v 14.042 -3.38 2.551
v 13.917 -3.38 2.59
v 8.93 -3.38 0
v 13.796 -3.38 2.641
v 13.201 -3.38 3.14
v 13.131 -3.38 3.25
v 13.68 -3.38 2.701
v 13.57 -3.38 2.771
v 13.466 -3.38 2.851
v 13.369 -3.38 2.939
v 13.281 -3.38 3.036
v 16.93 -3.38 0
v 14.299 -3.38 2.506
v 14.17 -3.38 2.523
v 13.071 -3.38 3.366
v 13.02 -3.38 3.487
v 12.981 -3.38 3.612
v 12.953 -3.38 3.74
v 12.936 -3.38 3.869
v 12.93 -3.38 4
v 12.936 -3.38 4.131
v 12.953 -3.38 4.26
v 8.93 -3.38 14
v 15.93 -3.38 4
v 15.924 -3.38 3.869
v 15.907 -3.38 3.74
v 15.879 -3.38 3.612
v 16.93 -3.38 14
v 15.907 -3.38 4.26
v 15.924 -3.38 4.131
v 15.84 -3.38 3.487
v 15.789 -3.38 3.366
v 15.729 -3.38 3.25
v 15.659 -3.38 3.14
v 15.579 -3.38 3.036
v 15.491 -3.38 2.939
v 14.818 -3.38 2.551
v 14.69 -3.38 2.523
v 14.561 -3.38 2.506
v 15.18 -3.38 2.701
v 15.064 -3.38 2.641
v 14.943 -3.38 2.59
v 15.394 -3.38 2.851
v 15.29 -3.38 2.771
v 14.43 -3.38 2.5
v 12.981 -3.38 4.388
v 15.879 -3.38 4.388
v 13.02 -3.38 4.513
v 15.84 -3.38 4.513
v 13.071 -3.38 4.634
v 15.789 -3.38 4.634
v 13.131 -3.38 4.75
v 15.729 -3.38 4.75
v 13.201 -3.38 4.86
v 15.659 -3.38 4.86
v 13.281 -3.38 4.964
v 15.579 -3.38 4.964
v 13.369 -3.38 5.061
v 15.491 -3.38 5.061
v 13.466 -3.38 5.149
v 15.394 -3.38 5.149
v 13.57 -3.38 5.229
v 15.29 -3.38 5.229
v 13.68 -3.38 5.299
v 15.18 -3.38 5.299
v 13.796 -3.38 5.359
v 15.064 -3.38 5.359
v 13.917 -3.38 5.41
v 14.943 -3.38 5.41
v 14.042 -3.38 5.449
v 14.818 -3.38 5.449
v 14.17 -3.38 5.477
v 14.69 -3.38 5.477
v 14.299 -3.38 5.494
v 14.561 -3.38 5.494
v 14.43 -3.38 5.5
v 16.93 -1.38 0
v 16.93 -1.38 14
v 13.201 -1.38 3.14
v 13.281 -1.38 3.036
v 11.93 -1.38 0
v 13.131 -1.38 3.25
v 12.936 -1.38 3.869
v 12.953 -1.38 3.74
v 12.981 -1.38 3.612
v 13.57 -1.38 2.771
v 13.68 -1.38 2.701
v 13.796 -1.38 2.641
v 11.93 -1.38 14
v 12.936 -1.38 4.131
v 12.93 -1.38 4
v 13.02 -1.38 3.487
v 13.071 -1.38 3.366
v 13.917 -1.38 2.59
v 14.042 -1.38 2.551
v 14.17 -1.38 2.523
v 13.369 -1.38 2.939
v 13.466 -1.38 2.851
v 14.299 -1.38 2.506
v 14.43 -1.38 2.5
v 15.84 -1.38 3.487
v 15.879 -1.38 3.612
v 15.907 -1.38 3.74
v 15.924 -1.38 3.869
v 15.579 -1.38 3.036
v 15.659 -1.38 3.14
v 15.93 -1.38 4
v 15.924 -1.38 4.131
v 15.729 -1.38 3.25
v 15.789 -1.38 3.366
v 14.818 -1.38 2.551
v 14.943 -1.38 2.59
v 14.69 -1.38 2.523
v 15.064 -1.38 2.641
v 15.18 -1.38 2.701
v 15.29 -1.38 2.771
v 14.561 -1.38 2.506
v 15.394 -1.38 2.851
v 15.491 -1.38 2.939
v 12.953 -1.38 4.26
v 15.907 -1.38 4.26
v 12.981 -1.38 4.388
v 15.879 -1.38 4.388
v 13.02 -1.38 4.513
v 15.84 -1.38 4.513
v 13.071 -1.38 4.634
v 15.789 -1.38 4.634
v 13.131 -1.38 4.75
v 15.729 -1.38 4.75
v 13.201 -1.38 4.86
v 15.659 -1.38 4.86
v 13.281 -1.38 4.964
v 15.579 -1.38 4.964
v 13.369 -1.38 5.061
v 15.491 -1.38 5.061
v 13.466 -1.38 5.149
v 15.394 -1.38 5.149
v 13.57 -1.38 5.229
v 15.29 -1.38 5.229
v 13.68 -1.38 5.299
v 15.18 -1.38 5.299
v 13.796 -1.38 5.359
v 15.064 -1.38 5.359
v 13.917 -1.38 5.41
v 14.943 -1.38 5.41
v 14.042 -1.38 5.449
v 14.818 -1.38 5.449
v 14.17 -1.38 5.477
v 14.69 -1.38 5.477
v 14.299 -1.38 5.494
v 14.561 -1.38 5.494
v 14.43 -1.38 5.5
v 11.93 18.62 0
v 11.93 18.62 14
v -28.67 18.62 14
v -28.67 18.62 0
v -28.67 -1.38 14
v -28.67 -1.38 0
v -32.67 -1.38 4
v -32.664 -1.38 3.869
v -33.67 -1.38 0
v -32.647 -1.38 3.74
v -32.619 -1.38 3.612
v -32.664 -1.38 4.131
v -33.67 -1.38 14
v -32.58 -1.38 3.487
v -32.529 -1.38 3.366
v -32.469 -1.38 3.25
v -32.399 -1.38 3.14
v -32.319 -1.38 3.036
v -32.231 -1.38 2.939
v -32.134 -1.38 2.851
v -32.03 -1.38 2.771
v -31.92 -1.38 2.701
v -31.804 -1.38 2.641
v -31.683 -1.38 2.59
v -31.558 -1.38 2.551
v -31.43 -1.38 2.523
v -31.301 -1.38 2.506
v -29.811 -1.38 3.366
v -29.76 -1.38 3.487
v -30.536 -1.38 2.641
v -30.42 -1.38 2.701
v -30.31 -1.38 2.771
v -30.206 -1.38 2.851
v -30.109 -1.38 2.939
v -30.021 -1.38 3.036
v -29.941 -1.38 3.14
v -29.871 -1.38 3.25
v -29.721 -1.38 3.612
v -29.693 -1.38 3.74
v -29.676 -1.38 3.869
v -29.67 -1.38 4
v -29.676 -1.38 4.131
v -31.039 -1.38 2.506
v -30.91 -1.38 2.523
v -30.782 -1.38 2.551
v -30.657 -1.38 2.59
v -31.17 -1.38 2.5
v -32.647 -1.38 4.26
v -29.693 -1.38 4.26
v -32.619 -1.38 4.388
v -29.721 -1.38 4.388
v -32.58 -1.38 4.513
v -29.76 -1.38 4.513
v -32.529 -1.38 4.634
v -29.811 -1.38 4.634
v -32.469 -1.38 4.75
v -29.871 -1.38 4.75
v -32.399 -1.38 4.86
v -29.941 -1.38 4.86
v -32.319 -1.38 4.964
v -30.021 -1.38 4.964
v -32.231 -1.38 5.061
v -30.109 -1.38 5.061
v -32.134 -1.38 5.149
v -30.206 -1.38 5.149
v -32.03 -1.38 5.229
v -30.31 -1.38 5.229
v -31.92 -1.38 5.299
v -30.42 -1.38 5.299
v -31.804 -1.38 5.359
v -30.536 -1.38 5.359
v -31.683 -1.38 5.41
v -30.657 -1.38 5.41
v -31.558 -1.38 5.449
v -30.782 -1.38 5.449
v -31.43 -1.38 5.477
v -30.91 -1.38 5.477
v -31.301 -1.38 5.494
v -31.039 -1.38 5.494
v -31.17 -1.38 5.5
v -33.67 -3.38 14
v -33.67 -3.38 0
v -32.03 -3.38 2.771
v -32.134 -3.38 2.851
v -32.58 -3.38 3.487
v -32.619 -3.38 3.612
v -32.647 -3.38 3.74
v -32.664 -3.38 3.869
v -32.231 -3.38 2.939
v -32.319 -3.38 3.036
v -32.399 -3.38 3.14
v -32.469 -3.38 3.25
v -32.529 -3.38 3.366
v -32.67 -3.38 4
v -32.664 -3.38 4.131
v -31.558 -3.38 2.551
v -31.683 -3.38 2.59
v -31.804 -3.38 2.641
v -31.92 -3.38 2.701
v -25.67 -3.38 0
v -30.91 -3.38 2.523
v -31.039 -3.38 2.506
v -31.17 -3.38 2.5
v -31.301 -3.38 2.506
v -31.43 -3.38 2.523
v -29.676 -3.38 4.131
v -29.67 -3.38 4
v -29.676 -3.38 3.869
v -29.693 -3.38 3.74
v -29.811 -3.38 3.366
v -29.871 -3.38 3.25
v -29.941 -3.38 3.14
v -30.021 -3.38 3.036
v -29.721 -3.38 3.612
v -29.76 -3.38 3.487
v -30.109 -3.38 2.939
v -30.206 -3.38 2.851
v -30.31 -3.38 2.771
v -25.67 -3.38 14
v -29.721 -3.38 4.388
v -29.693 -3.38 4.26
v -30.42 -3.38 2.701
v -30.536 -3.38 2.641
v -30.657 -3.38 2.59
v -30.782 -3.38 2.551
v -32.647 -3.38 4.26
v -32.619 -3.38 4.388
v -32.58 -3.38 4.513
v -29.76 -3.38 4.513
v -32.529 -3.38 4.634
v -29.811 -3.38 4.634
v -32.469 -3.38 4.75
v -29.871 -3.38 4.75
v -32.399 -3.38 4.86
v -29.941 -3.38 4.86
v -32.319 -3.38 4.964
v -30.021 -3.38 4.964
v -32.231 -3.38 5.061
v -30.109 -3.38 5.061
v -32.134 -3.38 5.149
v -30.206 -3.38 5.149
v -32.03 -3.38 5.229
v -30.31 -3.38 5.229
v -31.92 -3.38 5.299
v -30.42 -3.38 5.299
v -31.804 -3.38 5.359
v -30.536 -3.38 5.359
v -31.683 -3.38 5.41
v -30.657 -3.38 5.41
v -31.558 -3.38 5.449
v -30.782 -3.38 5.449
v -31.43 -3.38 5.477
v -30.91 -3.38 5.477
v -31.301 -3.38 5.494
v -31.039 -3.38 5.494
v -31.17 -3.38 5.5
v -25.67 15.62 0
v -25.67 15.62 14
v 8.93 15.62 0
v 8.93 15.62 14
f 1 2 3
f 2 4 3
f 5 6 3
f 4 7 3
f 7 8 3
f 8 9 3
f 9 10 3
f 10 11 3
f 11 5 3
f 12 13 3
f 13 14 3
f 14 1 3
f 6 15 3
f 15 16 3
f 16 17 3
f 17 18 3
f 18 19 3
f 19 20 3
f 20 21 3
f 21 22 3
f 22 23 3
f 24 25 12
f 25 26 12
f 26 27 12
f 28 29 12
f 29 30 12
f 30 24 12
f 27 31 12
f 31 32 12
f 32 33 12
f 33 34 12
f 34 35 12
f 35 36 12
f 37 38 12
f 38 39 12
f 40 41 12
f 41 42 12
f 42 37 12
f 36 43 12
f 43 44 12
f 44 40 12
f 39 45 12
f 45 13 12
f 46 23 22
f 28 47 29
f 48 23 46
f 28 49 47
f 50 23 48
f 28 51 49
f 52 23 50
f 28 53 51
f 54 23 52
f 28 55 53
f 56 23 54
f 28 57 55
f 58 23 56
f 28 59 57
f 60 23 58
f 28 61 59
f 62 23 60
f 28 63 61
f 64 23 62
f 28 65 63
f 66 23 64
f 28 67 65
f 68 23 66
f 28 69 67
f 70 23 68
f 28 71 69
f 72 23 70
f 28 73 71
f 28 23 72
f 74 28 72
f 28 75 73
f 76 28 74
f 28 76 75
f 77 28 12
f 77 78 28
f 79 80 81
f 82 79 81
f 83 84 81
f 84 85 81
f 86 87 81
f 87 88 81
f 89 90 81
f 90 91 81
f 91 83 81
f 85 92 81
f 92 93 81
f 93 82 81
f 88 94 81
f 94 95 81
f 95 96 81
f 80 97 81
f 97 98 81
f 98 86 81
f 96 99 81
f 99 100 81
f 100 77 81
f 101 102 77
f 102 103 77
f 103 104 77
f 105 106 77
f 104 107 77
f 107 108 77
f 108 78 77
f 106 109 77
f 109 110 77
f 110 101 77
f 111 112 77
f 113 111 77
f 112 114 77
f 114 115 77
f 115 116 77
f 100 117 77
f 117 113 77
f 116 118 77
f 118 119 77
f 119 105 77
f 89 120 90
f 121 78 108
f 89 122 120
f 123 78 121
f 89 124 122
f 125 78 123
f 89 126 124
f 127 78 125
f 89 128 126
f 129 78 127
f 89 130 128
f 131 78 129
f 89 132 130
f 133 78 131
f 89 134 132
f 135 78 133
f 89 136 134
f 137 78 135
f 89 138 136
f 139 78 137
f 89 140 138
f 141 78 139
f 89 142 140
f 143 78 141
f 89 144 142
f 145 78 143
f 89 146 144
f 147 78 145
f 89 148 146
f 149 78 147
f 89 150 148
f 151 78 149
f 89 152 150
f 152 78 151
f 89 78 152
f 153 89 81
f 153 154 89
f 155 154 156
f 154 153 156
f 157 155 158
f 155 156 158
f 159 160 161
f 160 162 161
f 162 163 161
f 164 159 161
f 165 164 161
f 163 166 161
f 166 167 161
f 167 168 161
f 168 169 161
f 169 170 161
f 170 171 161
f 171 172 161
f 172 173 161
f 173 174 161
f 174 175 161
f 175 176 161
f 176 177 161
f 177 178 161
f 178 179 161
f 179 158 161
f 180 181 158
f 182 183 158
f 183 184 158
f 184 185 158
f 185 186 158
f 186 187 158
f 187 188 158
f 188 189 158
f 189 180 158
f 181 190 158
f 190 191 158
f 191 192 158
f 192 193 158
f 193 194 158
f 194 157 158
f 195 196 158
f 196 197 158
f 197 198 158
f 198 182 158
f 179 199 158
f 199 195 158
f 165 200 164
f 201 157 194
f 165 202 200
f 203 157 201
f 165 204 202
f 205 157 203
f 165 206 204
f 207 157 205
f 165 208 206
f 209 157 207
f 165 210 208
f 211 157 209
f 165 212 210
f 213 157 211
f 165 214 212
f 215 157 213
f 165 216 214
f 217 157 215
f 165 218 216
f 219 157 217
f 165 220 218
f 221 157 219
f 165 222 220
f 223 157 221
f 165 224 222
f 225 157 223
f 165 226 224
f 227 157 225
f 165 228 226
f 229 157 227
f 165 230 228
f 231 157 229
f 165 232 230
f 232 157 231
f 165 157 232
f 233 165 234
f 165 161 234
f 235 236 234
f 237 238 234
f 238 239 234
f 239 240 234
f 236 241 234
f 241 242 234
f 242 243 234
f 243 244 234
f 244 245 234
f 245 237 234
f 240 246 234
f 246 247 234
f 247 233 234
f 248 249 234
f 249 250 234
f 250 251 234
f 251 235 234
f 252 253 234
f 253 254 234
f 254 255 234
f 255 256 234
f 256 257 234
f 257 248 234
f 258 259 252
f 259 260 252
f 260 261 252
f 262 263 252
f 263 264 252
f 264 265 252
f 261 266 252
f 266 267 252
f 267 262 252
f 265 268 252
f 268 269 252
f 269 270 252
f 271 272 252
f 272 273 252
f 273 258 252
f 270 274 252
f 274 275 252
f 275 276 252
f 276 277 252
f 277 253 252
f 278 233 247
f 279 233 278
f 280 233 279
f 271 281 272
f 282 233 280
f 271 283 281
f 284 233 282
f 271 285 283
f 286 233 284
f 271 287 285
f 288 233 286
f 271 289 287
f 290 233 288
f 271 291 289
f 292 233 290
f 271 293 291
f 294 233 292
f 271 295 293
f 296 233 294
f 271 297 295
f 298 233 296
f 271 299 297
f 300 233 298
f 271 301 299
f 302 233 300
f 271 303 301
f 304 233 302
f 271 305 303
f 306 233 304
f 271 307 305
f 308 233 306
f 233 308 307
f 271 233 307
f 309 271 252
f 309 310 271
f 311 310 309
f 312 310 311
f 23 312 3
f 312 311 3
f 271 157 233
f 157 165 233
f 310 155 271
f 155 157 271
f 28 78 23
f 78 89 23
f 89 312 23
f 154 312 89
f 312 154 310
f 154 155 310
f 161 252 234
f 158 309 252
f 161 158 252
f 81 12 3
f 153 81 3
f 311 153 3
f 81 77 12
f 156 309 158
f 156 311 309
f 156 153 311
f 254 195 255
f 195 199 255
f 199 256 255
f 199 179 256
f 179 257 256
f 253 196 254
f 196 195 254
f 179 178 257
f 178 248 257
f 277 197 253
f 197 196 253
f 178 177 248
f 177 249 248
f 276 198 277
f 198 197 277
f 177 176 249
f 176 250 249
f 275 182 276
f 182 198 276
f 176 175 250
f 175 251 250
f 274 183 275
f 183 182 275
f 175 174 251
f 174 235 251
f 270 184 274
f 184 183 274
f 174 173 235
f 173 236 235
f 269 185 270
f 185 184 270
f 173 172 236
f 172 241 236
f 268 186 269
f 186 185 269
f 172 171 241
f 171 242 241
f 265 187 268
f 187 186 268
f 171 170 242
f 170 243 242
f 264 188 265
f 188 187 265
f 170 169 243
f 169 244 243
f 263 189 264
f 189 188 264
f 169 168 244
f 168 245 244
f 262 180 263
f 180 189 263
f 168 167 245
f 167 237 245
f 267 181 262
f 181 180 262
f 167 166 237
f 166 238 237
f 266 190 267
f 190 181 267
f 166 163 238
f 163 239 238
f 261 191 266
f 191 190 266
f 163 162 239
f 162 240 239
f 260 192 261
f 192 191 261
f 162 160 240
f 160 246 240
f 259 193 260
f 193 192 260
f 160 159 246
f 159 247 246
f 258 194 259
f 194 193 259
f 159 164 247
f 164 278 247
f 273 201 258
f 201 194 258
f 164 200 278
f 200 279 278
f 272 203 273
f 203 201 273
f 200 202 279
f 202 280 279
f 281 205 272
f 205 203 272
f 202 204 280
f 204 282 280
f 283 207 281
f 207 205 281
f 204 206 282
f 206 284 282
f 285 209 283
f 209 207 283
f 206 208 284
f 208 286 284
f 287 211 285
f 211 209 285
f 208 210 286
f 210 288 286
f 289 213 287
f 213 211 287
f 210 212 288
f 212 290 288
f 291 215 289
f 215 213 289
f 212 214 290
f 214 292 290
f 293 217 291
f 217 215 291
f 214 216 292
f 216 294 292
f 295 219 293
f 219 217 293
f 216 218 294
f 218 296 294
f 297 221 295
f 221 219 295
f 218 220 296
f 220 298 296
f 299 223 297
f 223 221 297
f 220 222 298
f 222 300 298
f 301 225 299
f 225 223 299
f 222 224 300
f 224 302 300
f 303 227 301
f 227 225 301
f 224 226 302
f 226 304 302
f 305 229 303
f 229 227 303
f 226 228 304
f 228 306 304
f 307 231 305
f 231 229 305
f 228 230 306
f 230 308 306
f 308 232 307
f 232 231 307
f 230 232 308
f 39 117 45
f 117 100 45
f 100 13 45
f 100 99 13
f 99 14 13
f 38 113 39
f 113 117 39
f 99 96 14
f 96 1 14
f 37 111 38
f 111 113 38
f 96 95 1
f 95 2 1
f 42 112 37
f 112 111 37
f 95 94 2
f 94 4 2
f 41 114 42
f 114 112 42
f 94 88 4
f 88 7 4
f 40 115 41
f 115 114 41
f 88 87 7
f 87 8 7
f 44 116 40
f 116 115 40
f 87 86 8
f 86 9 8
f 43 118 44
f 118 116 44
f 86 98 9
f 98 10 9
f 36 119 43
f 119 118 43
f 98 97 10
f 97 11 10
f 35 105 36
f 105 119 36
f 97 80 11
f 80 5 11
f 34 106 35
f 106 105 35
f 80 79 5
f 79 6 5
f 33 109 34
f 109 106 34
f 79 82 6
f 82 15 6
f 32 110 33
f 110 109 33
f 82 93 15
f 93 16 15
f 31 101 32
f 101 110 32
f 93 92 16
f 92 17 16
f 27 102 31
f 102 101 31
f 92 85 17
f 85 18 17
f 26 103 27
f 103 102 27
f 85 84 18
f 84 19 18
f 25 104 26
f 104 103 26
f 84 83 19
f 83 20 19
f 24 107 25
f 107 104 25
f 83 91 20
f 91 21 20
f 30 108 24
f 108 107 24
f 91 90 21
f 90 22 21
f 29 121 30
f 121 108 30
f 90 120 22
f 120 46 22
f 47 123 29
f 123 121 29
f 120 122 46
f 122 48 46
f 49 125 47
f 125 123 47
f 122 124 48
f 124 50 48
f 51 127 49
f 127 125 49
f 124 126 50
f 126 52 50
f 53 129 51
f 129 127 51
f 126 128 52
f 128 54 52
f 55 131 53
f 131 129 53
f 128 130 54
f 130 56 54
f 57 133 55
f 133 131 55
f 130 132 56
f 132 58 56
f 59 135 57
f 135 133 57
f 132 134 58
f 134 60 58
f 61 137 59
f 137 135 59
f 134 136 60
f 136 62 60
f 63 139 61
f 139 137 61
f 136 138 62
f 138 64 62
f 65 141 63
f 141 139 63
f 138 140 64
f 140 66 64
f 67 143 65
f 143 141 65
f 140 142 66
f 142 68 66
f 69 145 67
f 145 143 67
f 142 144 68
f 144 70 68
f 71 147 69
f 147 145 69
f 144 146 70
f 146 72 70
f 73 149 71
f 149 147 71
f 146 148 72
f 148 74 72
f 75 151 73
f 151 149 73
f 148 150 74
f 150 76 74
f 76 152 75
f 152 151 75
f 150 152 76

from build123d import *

# Parameters (mm, degrees)
BOSS_EXTRUDE1_DEPTH      = 14
F_3_0_3_DIAMETER_HOLE1_D = 3


with BuildPart() as part:
    # Sketch2 → Boss-Extrude1 (new body)
    with BuildSketch(Plane.XY):
        Polygon((11.93, -3.38), (16.93, -3.38), (16.93, -1.38), (11.93, -1.38), (11.93, 18.62), (-28.67, 18.62), (-28.67, -1.38), (-33.67, -1.38), (-33.67, -3.38), (-12.23, -3.38), (-25.67, -3.38), (-25.67, 15.62), (8.93, 15.62), (8.93, -3.38), align=None)
    extrude(amount=BOSS_EXTRUDE1_DEPTH)

    # Ø3.0 (3) Diameter Hole1 (through all)
    with Locations(Plane(origin=(0, -1.38, 0), x_dir=(1, 0, 0), z_dir=(0, 1, 0))):
        with Locations((14.43, -4), (-31.17, -4)):
            Hole(F_3_0_3_DIAMETER_HOLE1_D / 2)


solid = part.part
